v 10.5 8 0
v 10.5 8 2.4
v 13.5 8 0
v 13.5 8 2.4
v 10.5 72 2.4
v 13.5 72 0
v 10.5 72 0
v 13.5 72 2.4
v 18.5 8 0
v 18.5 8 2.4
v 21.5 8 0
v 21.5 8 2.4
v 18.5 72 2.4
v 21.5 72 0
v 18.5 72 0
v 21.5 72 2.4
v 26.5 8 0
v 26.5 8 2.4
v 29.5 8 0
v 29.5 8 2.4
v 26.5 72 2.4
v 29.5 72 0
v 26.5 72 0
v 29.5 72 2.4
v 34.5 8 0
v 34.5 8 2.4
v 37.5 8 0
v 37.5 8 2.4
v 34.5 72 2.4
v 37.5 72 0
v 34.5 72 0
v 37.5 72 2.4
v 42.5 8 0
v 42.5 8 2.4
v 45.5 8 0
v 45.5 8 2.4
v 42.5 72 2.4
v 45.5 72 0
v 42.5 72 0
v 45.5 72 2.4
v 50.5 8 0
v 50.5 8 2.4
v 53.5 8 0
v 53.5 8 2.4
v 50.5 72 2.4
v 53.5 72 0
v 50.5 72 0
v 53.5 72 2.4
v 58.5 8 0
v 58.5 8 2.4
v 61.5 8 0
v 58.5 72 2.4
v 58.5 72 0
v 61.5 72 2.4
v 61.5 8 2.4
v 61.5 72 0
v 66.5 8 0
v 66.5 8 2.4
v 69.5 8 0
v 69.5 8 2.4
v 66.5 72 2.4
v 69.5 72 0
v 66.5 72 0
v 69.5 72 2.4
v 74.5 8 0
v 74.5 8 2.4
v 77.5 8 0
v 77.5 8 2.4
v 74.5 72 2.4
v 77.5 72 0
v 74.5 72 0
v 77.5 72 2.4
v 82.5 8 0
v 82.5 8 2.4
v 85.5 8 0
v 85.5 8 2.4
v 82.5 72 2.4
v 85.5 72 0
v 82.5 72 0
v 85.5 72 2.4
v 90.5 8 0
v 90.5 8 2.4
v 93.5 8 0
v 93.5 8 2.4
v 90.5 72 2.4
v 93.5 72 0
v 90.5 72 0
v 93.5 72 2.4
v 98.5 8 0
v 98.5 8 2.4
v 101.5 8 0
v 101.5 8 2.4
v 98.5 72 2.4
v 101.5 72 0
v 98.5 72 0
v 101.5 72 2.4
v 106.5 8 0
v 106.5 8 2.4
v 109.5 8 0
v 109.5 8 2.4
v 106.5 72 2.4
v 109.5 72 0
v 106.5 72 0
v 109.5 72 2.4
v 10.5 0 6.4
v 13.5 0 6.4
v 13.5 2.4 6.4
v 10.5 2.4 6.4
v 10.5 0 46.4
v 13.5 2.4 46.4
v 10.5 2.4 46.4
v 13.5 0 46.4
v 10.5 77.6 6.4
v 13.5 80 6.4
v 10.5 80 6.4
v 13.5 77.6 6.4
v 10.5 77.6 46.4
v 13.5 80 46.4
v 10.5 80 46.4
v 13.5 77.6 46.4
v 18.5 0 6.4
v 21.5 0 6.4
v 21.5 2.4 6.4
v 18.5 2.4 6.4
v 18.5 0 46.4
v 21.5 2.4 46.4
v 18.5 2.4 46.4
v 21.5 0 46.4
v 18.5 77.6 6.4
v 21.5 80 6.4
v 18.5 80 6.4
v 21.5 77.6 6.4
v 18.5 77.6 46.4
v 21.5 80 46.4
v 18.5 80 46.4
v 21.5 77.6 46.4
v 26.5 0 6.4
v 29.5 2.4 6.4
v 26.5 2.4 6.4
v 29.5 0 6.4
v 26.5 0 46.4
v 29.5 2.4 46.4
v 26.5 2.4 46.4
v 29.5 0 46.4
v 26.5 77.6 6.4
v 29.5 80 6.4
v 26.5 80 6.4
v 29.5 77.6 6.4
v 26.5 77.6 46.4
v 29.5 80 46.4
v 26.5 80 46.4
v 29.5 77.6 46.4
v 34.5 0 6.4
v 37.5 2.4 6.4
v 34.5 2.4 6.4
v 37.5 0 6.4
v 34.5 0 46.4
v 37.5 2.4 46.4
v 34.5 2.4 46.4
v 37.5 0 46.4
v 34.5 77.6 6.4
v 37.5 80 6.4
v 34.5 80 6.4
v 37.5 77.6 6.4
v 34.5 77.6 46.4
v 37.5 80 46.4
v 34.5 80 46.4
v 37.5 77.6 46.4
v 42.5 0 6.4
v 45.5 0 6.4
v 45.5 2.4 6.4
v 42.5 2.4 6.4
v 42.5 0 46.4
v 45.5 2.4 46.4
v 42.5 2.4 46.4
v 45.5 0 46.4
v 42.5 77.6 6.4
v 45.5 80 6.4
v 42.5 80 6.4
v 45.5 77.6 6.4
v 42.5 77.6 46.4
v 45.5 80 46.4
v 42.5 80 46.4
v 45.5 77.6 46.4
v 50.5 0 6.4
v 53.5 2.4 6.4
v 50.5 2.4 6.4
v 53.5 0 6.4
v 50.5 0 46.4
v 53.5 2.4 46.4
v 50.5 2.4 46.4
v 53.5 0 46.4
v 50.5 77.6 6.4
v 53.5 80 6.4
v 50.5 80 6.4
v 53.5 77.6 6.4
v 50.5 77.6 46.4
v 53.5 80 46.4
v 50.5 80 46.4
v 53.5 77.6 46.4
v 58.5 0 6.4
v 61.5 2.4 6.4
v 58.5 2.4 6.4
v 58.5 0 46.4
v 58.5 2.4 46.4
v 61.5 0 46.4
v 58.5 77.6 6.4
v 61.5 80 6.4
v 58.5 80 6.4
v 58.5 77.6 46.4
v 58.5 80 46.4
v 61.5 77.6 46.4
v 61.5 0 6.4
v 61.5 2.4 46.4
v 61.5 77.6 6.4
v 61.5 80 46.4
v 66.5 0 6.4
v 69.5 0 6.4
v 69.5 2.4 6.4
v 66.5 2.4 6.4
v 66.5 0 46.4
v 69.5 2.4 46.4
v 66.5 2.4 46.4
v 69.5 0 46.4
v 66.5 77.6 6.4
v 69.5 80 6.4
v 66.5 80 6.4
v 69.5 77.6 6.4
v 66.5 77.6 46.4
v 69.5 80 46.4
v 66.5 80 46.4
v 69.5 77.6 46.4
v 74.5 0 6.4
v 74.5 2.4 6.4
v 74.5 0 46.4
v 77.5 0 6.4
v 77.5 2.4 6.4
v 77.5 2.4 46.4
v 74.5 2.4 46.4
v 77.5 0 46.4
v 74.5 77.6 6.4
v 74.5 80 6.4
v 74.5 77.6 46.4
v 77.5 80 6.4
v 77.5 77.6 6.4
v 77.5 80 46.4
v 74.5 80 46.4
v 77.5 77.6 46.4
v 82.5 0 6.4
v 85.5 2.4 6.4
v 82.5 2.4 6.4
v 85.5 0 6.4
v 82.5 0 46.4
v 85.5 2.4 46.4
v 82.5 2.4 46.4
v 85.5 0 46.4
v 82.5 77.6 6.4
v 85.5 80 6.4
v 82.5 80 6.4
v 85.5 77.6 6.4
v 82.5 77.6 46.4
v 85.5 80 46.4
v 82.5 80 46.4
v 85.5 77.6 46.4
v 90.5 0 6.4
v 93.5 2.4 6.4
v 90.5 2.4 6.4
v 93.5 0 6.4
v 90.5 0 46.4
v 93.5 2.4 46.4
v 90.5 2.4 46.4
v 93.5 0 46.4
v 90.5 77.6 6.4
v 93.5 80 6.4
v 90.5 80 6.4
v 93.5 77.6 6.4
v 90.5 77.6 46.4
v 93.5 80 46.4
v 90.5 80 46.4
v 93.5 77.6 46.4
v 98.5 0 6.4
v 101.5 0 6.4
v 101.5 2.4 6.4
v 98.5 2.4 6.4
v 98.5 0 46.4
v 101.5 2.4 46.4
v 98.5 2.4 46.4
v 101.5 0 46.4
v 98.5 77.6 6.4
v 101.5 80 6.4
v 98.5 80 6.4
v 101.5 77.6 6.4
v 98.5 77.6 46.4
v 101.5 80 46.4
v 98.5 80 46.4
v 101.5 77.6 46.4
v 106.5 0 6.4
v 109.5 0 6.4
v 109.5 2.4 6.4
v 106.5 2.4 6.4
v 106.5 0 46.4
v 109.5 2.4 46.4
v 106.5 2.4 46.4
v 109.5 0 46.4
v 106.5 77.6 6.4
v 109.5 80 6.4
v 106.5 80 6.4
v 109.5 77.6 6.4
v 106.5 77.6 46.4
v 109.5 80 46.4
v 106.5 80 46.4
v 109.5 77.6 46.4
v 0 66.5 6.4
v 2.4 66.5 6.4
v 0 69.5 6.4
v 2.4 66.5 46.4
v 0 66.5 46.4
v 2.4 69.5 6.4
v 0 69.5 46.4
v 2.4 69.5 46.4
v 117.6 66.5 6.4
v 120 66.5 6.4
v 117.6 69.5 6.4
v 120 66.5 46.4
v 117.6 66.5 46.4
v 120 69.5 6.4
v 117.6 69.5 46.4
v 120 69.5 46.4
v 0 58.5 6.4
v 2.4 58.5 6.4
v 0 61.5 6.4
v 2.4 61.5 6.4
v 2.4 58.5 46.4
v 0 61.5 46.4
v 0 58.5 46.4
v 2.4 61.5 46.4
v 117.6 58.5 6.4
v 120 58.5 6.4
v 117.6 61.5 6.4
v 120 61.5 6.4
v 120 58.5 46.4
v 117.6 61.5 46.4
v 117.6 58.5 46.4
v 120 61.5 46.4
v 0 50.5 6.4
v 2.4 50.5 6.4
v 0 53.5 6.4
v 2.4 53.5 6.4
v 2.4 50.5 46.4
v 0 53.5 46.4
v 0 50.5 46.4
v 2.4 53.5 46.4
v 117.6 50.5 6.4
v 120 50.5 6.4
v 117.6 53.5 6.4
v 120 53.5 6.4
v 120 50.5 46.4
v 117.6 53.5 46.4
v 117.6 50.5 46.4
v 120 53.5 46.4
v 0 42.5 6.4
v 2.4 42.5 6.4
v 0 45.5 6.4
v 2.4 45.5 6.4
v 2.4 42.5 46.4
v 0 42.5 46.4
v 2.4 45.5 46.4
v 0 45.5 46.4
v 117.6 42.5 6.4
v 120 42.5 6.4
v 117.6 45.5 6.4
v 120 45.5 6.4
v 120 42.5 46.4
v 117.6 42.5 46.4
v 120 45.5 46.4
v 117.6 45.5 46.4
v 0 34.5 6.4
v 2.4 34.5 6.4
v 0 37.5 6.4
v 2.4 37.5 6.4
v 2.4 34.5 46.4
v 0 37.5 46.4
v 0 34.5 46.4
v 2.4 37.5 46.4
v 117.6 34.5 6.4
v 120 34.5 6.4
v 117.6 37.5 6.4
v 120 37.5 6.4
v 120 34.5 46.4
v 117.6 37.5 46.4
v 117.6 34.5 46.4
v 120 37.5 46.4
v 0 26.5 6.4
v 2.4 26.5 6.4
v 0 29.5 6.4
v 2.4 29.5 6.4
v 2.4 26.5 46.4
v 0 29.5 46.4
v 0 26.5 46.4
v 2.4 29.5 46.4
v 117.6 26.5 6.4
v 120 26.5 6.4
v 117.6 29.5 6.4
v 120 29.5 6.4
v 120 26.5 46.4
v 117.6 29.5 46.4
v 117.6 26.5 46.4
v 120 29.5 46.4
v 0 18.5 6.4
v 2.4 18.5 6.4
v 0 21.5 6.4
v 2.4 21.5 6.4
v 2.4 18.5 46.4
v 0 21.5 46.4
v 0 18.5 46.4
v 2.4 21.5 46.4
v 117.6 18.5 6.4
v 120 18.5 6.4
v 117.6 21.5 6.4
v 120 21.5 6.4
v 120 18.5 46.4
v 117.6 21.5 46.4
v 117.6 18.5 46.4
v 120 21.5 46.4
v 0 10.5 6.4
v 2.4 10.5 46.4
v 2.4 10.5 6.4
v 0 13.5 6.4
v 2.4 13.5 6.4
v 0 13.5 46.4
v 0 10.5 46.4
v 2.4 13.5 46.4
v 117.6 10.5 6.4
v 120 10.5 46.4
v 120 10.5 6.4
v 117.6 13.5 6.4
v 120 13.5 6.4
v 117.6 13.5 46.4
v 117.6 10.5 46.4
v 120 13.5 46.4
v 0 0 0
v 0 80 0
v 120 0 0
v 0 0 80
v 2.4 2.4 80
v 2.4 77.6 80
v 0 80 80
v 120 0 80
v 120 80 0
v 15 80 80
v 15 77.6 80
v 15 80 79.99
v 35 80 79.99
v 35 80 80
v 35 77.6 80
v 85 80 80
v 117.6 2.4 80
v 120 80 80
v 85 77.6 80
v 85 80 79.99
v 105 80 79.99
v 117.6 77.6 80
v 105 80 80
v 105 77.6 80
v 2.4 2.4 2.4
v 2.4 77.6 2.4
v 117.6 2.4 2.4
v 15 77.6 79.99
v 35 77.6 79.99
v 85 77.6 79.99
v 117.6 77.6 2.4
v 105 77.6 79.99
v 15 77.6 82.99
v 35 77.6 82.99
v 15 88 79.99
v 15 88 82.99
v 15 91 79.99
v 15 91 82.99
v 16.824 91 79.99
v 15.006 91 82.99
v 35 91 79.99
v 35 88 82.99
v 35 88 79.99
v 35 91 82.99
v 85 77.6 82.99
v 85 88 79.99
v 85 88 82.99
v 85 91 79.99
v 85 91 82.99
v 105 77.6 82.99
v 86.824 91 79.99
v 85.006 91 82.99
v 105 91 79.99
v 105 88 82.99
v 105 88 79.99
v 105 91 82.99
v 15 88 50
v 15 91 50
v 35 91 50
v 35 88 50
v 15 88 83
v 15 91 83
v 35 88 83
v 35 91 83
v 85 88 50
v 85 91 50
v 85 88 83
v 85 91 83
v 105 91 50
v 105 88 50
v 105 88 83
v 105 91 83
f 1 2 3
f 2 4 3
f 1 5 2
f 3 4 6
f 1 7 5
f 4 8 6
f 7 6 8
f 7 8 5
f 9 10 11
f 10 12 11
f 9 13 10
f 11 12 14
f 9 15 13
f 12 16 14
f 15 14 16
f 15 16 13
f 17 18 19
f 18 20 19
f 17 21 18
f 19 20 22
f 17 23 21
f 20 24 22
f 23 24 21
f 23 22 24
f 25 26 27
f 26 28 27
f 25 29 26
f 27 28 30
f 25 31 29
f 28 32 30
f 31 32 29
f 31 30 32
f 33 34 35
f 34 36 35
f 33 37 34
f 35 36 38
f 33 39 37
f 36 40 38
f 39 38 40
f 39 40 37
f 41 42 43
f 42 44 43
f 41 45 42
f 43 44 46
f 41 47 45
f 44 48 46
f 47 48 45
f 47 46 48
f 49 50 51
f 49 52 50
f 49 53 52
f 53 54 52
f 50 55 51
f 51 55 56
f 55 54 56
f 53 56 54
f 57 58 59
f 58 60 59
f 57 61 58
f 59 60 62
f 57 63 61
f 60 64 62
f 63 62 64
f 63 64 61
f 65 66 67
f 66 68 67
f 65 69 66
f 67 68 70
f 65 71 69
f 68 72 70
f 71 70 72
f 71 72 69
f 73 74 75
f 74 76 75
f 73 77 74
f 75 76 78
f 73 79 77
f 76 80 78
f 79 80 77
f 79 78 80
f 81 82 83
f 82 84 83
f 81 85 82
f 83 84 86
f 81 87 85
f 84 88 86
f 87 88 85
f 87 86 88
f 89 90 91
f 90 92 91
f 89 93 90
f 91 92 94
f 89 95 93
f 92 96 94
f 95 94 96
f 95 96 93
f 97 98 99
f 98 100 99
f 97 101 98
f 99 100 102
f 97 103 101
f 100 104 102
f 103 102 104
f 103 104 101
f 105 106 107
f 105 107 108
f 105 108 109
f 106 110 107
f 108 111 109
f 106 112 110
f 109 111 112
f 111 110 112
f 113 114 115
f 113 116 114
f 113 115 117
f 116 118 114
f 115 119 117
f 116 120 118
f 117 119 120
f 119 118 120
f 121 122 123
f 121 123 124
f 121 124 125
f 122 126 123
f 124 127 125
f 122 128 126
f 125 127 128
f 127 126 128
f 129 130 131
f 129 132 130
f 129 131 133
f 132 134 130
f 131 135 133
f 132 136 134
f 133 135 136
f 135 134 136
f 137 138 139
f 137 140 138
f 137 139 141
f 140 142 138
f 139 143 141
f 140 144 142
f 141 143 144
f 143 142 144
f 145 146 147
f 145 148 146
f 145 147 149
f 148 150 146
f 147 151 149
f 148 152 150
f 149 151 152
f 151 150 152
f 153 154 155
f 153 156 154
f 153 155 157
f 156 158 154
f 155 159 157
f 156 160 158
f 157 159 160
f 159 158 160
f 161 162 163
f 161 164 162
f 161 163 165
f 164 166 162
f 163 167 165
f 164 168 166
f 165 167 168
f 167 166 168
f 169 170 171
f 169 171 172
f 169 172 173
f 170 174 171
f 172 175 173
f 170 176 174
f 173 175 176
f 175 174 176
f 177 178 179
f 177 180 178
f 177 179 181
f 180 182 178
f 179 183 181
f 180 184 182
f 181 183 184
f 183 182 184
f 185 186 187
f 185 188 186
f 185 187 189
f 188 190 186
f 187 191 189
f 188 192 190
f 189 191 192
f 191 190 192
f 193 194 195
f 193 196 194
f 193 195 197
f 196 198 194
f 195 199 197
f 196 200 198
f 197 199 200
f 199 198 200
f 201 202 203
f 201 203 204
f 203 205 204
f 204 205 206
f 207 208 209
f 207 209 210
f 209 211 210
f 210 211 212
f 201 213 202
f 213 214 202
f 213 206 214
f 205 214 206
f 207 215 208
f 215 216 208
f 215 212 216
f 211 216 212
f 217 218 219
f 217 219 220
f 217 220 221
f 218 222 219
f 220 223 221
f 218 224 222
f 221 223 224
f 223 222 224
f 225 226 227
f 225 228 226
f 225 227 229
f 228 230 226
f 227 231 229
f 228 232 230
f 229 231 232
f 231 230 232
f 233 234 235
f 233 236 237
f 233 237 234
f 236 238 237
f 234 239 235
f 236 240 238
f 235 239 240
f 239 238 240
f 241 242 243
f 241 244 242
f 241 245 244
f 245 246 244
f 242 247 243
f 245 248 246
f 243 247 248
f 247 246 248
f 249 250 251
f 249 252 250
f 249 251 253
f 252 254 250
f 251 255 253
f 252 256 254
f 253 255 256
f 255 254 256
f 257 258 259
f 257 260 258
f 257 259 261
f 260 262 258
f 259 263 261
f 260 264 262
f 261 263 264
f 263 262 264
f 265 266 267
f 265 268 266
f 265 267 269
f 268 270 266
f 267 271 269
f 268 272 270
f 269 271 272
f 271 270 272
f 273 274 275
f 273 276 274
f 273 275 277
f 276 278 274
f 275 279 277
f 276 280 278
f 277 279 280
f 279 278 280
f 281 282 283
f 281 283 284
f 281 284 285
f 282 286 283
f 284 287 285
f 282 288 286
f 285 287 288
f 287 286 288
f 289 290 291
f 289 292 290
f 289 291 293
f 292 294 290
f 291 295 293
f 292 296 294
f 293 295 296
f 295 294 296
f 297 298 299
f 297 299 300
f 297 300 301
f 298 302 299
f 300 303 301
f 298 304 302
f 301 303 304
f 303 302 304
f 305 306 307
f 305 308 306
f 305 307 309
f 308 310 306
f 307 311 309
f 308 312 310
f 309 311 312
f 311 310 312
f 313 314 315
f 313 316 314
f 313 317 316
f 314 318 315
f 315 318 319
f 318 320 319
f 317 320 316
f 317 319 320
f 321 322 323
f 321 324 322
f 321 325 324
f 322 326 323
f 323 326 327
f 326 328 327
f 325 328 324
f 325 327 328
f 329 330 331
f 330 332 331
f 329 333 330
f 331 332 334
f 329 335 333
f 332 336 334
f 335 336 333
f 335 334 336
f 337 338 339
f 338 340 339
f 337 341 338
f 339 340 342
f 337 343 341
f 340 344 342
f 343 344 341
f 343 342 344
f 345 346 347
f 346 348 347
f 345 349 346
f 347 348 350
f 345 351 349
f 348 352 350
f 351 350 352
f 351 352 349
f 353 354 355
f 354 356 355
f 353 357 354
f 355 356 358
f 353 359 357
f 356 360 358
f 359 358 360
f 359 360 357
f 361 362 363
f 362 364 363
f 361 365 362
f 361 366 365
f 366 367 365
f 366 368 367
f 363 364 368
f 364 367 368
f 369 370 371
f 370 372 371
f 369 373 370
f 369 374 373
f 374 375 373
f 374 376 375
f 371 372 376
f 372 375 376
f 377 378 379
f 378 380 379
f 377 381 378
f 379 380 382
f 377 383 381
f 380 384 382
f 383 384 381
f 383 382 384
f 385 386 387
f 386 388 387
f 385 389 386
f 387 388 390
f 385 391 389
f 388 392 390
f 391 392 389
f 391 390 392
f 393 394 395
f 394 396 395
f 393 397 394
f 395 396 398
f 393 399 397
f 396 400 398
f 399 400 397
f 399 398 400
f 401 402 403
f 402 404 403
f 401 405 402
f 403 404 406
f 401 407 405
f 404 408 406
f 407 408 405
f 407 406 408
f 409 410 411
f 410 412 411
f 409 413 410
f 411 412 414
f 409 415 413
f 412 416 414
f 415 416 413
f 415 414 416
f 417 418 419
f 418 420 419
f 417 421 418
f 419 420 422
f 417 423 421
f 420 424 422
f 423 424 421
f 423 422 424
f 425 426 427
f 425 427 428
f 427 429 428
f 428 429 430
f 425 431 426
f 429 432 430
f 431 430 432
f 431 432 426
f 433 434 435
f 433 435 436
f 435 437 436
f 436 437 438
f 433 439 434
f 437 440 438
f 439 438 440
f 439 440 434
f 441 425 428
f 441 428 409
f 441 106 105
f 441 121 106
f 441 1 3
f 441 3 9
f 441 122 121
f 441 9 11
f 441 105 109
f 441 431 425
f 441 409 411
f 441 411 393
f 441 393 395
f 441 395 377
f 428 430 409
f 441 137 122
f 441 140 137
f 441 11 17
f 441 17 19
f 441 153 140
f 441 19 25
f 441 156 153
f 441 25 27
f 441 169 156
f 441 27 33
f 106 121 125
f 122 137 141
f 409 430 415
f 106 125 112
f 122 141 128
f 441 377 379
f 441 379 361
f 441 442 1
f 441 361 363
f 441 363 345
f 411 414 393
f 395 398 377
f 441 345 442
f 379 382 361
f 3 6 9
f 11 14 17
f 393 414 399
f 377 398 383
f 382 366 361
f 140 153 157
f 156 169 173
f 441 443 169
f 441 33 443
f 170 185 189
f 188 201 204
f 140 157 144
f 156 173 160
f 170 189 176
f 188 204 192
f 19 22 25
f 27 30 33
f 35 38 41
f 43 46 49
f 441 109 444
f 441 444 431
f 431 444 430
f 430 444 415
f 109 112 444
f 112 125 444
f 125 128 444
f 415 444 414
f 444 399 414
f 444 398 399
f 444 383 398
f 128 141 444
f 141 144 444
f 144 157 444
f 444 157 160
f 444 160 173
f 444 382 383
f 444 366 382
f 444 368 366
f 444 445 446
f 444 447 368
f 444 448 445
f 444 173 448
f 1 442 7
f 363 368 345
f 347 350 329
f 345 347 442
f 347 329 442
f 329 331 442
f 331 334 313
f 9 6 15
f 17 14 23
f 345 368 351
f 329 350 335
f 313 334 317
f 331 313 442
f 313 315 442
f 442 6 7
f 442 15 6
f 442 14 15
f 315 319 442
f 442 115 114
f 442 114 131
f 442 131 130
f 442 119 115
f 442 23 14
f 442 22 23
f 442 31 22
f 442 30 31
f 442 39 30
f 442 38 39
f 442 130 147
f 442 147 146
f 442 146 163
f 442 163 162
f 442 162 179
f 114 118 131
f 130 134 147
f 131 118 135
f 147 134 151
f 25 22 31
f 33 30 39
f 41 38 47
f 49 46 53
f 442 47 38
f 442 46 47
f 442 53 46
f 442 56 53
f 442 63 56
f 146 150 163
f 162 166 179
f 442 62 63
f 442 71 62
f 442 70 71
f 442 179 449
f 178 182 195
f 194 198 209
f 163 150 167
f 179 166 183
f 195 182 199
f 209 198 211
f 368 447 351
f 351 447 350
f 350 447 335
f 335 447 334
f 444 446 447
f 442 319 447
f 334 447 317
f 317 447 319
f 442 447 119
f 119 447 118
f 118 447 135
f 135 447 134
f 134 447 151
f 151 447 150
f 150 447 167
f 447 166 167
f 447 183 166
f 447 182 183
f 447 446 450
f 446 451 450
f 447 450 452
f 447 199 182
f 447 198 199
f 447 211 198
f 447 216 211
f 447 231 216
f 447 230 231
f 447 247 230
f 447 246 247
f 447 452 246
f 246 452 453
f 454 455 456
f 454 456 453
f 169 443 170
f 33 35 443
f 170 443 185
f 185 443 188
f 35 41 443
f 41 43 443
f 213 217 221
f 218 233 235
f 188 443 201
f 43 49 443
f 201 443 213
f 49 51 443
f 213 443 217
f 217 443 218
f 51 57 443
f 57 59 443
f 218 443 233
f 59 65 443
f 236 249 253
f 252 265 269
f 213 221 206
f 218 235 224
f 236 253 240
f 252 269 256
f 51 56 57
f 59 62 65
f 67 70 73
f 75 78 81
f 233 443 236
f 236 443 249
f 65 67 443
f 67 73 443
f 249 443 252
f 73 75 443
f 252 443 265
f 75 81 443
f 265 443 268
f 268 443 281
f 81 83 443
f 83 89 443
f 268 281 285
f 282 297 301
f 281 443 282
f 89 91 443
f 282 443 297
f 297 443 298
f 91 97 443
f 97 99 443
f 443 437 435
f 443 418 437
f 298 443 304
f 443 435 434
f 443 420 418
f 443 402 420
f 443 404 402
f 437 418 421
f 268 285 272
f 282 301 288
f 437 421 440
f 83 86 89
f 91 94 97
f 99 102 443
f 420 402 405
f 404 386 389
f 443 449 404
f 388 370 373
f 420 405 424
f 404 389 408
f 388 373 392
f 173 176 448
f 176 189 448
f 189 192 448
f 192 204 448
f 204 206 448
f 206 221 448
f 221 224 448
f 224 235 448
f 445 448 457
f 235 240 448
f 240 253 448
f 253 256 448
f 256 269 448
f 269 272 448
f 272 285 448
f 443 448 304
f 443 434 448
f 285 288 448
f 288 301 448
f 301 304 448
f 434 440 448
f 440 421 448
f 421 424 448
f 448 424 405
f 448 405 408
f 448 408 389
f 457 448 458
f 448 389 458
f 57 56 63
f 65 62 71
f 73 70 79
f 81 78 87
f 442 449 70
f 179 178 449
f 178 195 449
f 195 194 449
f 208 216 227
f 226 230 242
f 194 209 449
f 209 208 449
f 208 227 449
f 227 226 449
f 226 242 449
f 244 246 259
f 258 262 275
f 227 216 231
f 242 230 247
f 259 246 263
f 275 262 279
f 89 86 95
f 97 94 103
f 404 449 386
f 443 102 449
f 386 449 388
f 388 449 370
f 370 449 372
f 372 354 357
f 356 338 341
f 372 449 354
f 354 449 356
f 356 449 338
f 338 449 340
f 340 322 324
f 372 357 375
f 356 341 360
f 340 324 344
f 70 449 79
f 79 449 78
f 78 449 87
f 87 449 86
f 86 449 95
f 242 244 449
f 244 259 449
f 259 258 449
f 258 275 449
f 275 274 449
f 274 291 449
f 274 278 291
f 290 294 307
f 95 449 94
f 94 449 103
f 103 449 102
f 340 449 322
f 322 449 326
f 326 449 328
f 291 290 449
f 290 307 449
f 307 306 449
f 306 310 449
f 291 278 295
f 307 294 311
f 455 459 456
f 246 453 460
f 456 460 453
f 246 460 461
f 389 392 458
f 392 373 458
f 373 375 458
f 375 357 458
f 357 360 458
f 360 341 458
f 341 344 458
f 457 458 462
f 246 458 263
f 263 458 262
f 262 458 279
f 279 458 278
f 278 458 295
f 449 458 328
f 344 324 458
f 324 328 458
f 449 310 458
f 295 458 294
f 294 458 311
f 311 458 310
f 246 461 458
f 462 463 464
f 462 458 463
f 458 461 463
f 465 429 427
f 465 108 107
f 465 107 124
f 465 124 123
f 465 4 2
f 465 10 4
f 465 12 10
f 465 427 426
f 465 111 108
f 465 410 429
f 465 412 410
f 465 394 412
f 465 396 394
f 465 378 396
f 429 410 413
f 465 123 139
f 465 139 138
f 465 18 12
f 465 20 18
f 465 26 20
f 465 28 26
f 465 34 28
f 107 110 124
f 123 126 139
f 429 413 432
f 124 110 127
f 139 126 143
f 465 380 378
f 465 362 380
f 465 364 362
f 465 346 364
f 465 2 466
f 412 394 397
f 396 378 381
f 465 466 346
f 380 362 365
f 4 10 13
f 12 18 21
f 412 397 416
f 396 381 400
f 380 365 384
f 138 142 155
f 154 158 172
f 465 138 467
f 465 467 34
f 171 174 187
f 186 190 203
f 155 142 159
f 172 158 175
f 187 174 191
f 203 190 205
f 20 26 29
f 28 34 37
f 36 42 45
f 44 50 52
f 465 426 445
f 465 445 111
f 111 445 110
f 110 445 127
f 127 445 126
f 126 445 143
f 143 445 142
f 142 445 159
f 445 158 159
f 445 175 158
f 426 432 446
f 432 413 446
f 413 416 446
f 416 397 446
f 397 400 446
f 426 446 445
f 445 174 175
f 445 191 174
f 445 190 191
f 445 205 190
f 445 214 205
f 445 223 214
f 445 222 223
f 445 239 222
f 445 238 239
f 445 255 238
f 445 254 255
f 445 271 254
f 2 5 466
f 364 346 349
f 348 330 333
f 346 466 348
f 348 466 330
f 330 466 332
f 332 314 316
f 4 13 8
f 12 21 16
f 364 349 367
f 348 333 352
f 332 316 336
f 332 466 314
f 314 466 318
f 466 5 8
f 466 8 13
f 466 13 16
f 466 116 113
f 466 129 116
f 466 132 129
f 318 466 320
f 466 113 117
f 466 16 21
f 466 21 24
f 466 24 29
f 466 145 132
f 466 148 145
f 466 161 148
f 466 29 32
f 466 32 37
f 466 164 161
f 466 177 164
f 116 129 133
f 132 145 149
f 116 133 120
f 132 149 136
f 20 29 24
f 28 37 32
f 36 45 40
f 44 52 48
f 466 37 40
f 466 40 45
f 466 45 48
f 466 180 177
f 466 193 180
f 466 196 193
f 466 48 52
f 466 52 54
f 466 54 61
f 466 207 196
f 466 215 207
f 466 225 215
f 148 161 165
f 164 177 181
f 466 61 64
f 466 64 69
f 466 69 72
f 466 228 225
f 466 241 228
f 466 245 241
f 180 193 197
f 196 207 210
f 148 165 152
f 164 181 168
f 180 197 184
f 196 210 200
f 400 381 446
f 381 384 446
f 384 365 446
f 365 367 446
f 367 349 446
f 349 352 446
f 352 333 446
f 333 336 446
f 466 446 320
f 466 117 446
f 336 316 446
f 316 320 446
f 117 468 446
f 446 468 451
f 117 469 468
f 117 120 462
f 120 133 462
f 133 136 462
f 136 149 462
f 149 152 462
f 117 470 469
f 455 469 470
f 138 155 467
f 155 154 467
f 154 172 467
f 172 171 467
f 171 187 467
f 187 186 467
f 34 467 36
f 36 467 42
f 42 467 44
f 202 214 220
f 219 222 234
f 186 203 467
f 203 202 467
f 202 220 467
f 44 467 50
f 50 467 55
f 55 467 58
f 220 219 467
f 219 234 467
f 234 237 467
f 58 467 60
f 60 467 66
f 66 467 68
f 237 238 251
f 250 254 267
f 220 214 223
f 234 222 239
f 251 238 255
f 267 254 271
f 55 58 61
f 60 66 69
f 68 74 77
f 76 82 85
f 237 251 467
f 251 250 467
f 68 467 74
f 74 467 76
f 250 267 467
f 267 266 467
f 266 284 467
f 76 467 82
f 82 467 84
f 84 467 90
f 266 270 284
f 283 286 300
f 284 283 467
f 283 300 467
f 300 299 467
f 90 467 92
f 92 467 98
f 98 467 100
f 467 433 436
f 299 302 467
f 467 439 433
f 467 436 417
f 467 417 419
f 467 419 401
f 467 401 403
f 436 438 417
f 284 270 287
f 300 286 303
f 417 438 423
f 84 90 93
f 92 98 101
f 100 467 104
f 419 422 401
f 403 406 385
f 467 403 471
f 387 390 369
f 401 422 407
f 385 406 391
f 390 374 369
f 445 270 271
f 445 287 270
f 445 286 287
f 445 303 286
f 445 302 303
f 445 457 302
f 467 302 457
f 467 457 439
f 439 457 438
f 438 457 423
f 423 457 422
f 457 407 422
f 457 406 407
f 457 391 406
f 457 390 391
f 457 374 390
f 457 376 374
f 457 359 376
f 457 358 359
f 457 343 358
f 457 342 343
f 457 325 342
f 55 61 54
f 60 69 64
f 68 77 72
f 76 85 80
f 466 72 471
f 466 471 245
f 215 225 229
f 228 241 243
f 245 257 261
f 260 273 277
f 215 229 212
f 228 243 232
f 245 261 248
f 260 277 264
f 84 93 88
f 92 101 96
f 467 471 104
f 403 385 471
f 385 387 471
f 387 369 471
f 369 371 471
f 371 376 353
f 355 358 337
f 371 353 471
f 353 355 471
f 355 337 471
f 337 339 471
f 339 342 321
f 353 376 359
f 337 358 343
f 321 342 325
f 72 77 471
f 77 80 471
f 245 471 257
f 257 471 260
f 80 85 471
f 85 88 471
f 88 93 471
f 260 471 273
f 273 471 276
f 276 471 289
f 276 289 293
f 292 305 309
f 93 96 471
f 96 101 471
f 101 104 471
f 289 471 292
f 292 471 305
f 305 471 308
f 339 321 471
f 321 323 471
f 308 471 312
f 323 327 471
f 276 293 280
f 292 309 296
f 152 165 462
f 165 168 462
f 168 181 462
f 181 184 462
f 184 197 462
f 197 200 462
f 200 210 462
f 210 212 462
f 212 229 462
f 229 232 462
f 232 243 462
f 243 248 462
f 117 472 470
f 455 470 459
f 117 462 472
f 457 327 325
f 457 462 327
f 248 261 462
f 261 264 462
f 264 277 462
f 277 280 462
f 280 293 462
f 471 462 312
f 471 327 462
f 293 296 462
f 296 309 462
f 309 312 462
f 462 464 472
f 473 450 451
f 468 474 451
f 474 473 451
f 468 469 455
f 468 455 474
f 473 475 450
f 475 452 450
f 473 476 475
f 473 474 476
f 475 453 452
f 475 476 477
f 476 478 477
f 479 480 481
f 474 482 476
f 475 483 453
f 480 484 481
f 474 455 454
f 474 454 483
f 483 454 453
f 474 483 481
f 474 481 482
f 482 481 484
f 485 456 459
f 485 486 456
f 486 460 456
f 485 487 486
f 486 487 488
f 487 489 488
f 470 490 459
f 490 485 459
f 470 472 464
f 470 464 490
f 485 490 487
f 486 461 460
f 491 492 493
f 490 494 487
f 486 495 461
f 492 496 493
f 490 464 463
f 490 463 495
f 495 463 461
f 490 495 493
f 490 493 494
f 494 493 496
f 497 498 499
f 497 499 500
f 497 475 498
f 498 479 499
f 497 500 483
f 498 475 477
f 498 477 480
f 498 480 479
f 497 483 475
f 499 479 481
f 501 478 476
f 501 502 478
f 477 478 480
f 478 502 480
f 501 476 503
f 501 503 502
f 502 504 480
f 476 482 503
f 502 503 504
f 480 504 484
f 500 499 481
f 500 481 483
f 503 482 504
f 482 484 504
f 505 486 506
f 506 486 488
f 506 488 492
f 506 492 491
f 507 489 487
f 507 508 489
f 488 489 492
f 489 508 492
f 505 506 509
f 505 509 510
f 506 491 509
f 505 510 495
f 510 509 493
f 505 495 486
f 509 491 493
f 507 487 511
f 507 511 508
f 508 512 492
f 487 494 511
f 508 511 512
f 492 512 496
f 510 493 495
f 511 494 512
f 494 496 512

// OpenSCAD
// Aquaponics basket hanging on aquarium glass
// Simple test: slotted box + hooks over the glass edge

$fn = 48;

// --- Box ---
box_w   = 120;  // width along the glass (X)
box_d   = 80;   // depth into the tank (Y)
box_h   = 80;   // height (Z)
wall    = 2.4;  // wall thickness
floor_t = 2.4;  // floor thickness

// --- Water slots ---
slot_w      = 3;    // slot width
slot_pitch  = 8;    // slot spacing
slot_margin = 8;    // solid border around slot fields
side_slot_h = 40;   // height of side slots (from floor)

// --- Hook ---
glass_t    = 6;    // aquarium glass thickness
clearance  = 2;    // extra gap for easy fitting
hook_gap   = glass_t + clearance;
hook_w     = 20;   // width of one hook (X)
hook_t     = 3;    // hook material thickness
hook_leg   = 30;   // outer leg length below the bridge
hook_inset = 15;   // hook distance from box side edges

echo(hook_gap = hook_gap);

module slot_field_x(len, field_w, depth) {
    // slots running along Y, distributed along X
    n = floor((field_w - slot_w) / slot_pitch) + 1;
    off = (field_w - ((n - 1) * slot_pitch + slot_w)) / 2;
    for (i = [0 : n - 1])
        translate([off + i * slot_pitch, 0, 0]) cube([slot_w, len, depth]);
}

module box() {
    difference() {
        cube([box_w, box_d, box_h]);
        // hollow
        translate([wall, wall, floor_t]) cube([box_w - 2*wall, box_d - 2*wall, box_h]);
        // floor slots
        translate([slot_margin, slot_margin, -1])
            slot_field_x(box_d - 2*slot_margin, box_w - 2*slot_margin, floor_t + 2);
        // front/back wall slots (vertical)
        translate([slot_margin, -1, floor_t + 4])
            slot_field_x(box_d + 2, box_w - 2*slot_margin, side_slot_h);
        // left/right wall slots
        translate([-1, box_d - slot_margin, floor_t + 4])
            rotate([0, 0, -90])
                slot_field_x(box_w + 2, box_d - 2*slot_margin, side_slot_h);
    }
}

module hook() {
    // bridge over the glass, starting on top of the back wall
    translate([0, box_d - wall, box_h - 0.01])
        cube([hook_w, wall + hook_gap + hook_t, hook_t]);
    // outer leg going down outside the tank
    translate([0, box_d + hook_gap, box_h - hook_leg])
        cube([hook_w, hook_t, hook_leg + hook_t]);
}

box();
for (x = [hook_inset, box_w - hook_inset - hook_w])
    translate([x, 0, 0]) hook();
